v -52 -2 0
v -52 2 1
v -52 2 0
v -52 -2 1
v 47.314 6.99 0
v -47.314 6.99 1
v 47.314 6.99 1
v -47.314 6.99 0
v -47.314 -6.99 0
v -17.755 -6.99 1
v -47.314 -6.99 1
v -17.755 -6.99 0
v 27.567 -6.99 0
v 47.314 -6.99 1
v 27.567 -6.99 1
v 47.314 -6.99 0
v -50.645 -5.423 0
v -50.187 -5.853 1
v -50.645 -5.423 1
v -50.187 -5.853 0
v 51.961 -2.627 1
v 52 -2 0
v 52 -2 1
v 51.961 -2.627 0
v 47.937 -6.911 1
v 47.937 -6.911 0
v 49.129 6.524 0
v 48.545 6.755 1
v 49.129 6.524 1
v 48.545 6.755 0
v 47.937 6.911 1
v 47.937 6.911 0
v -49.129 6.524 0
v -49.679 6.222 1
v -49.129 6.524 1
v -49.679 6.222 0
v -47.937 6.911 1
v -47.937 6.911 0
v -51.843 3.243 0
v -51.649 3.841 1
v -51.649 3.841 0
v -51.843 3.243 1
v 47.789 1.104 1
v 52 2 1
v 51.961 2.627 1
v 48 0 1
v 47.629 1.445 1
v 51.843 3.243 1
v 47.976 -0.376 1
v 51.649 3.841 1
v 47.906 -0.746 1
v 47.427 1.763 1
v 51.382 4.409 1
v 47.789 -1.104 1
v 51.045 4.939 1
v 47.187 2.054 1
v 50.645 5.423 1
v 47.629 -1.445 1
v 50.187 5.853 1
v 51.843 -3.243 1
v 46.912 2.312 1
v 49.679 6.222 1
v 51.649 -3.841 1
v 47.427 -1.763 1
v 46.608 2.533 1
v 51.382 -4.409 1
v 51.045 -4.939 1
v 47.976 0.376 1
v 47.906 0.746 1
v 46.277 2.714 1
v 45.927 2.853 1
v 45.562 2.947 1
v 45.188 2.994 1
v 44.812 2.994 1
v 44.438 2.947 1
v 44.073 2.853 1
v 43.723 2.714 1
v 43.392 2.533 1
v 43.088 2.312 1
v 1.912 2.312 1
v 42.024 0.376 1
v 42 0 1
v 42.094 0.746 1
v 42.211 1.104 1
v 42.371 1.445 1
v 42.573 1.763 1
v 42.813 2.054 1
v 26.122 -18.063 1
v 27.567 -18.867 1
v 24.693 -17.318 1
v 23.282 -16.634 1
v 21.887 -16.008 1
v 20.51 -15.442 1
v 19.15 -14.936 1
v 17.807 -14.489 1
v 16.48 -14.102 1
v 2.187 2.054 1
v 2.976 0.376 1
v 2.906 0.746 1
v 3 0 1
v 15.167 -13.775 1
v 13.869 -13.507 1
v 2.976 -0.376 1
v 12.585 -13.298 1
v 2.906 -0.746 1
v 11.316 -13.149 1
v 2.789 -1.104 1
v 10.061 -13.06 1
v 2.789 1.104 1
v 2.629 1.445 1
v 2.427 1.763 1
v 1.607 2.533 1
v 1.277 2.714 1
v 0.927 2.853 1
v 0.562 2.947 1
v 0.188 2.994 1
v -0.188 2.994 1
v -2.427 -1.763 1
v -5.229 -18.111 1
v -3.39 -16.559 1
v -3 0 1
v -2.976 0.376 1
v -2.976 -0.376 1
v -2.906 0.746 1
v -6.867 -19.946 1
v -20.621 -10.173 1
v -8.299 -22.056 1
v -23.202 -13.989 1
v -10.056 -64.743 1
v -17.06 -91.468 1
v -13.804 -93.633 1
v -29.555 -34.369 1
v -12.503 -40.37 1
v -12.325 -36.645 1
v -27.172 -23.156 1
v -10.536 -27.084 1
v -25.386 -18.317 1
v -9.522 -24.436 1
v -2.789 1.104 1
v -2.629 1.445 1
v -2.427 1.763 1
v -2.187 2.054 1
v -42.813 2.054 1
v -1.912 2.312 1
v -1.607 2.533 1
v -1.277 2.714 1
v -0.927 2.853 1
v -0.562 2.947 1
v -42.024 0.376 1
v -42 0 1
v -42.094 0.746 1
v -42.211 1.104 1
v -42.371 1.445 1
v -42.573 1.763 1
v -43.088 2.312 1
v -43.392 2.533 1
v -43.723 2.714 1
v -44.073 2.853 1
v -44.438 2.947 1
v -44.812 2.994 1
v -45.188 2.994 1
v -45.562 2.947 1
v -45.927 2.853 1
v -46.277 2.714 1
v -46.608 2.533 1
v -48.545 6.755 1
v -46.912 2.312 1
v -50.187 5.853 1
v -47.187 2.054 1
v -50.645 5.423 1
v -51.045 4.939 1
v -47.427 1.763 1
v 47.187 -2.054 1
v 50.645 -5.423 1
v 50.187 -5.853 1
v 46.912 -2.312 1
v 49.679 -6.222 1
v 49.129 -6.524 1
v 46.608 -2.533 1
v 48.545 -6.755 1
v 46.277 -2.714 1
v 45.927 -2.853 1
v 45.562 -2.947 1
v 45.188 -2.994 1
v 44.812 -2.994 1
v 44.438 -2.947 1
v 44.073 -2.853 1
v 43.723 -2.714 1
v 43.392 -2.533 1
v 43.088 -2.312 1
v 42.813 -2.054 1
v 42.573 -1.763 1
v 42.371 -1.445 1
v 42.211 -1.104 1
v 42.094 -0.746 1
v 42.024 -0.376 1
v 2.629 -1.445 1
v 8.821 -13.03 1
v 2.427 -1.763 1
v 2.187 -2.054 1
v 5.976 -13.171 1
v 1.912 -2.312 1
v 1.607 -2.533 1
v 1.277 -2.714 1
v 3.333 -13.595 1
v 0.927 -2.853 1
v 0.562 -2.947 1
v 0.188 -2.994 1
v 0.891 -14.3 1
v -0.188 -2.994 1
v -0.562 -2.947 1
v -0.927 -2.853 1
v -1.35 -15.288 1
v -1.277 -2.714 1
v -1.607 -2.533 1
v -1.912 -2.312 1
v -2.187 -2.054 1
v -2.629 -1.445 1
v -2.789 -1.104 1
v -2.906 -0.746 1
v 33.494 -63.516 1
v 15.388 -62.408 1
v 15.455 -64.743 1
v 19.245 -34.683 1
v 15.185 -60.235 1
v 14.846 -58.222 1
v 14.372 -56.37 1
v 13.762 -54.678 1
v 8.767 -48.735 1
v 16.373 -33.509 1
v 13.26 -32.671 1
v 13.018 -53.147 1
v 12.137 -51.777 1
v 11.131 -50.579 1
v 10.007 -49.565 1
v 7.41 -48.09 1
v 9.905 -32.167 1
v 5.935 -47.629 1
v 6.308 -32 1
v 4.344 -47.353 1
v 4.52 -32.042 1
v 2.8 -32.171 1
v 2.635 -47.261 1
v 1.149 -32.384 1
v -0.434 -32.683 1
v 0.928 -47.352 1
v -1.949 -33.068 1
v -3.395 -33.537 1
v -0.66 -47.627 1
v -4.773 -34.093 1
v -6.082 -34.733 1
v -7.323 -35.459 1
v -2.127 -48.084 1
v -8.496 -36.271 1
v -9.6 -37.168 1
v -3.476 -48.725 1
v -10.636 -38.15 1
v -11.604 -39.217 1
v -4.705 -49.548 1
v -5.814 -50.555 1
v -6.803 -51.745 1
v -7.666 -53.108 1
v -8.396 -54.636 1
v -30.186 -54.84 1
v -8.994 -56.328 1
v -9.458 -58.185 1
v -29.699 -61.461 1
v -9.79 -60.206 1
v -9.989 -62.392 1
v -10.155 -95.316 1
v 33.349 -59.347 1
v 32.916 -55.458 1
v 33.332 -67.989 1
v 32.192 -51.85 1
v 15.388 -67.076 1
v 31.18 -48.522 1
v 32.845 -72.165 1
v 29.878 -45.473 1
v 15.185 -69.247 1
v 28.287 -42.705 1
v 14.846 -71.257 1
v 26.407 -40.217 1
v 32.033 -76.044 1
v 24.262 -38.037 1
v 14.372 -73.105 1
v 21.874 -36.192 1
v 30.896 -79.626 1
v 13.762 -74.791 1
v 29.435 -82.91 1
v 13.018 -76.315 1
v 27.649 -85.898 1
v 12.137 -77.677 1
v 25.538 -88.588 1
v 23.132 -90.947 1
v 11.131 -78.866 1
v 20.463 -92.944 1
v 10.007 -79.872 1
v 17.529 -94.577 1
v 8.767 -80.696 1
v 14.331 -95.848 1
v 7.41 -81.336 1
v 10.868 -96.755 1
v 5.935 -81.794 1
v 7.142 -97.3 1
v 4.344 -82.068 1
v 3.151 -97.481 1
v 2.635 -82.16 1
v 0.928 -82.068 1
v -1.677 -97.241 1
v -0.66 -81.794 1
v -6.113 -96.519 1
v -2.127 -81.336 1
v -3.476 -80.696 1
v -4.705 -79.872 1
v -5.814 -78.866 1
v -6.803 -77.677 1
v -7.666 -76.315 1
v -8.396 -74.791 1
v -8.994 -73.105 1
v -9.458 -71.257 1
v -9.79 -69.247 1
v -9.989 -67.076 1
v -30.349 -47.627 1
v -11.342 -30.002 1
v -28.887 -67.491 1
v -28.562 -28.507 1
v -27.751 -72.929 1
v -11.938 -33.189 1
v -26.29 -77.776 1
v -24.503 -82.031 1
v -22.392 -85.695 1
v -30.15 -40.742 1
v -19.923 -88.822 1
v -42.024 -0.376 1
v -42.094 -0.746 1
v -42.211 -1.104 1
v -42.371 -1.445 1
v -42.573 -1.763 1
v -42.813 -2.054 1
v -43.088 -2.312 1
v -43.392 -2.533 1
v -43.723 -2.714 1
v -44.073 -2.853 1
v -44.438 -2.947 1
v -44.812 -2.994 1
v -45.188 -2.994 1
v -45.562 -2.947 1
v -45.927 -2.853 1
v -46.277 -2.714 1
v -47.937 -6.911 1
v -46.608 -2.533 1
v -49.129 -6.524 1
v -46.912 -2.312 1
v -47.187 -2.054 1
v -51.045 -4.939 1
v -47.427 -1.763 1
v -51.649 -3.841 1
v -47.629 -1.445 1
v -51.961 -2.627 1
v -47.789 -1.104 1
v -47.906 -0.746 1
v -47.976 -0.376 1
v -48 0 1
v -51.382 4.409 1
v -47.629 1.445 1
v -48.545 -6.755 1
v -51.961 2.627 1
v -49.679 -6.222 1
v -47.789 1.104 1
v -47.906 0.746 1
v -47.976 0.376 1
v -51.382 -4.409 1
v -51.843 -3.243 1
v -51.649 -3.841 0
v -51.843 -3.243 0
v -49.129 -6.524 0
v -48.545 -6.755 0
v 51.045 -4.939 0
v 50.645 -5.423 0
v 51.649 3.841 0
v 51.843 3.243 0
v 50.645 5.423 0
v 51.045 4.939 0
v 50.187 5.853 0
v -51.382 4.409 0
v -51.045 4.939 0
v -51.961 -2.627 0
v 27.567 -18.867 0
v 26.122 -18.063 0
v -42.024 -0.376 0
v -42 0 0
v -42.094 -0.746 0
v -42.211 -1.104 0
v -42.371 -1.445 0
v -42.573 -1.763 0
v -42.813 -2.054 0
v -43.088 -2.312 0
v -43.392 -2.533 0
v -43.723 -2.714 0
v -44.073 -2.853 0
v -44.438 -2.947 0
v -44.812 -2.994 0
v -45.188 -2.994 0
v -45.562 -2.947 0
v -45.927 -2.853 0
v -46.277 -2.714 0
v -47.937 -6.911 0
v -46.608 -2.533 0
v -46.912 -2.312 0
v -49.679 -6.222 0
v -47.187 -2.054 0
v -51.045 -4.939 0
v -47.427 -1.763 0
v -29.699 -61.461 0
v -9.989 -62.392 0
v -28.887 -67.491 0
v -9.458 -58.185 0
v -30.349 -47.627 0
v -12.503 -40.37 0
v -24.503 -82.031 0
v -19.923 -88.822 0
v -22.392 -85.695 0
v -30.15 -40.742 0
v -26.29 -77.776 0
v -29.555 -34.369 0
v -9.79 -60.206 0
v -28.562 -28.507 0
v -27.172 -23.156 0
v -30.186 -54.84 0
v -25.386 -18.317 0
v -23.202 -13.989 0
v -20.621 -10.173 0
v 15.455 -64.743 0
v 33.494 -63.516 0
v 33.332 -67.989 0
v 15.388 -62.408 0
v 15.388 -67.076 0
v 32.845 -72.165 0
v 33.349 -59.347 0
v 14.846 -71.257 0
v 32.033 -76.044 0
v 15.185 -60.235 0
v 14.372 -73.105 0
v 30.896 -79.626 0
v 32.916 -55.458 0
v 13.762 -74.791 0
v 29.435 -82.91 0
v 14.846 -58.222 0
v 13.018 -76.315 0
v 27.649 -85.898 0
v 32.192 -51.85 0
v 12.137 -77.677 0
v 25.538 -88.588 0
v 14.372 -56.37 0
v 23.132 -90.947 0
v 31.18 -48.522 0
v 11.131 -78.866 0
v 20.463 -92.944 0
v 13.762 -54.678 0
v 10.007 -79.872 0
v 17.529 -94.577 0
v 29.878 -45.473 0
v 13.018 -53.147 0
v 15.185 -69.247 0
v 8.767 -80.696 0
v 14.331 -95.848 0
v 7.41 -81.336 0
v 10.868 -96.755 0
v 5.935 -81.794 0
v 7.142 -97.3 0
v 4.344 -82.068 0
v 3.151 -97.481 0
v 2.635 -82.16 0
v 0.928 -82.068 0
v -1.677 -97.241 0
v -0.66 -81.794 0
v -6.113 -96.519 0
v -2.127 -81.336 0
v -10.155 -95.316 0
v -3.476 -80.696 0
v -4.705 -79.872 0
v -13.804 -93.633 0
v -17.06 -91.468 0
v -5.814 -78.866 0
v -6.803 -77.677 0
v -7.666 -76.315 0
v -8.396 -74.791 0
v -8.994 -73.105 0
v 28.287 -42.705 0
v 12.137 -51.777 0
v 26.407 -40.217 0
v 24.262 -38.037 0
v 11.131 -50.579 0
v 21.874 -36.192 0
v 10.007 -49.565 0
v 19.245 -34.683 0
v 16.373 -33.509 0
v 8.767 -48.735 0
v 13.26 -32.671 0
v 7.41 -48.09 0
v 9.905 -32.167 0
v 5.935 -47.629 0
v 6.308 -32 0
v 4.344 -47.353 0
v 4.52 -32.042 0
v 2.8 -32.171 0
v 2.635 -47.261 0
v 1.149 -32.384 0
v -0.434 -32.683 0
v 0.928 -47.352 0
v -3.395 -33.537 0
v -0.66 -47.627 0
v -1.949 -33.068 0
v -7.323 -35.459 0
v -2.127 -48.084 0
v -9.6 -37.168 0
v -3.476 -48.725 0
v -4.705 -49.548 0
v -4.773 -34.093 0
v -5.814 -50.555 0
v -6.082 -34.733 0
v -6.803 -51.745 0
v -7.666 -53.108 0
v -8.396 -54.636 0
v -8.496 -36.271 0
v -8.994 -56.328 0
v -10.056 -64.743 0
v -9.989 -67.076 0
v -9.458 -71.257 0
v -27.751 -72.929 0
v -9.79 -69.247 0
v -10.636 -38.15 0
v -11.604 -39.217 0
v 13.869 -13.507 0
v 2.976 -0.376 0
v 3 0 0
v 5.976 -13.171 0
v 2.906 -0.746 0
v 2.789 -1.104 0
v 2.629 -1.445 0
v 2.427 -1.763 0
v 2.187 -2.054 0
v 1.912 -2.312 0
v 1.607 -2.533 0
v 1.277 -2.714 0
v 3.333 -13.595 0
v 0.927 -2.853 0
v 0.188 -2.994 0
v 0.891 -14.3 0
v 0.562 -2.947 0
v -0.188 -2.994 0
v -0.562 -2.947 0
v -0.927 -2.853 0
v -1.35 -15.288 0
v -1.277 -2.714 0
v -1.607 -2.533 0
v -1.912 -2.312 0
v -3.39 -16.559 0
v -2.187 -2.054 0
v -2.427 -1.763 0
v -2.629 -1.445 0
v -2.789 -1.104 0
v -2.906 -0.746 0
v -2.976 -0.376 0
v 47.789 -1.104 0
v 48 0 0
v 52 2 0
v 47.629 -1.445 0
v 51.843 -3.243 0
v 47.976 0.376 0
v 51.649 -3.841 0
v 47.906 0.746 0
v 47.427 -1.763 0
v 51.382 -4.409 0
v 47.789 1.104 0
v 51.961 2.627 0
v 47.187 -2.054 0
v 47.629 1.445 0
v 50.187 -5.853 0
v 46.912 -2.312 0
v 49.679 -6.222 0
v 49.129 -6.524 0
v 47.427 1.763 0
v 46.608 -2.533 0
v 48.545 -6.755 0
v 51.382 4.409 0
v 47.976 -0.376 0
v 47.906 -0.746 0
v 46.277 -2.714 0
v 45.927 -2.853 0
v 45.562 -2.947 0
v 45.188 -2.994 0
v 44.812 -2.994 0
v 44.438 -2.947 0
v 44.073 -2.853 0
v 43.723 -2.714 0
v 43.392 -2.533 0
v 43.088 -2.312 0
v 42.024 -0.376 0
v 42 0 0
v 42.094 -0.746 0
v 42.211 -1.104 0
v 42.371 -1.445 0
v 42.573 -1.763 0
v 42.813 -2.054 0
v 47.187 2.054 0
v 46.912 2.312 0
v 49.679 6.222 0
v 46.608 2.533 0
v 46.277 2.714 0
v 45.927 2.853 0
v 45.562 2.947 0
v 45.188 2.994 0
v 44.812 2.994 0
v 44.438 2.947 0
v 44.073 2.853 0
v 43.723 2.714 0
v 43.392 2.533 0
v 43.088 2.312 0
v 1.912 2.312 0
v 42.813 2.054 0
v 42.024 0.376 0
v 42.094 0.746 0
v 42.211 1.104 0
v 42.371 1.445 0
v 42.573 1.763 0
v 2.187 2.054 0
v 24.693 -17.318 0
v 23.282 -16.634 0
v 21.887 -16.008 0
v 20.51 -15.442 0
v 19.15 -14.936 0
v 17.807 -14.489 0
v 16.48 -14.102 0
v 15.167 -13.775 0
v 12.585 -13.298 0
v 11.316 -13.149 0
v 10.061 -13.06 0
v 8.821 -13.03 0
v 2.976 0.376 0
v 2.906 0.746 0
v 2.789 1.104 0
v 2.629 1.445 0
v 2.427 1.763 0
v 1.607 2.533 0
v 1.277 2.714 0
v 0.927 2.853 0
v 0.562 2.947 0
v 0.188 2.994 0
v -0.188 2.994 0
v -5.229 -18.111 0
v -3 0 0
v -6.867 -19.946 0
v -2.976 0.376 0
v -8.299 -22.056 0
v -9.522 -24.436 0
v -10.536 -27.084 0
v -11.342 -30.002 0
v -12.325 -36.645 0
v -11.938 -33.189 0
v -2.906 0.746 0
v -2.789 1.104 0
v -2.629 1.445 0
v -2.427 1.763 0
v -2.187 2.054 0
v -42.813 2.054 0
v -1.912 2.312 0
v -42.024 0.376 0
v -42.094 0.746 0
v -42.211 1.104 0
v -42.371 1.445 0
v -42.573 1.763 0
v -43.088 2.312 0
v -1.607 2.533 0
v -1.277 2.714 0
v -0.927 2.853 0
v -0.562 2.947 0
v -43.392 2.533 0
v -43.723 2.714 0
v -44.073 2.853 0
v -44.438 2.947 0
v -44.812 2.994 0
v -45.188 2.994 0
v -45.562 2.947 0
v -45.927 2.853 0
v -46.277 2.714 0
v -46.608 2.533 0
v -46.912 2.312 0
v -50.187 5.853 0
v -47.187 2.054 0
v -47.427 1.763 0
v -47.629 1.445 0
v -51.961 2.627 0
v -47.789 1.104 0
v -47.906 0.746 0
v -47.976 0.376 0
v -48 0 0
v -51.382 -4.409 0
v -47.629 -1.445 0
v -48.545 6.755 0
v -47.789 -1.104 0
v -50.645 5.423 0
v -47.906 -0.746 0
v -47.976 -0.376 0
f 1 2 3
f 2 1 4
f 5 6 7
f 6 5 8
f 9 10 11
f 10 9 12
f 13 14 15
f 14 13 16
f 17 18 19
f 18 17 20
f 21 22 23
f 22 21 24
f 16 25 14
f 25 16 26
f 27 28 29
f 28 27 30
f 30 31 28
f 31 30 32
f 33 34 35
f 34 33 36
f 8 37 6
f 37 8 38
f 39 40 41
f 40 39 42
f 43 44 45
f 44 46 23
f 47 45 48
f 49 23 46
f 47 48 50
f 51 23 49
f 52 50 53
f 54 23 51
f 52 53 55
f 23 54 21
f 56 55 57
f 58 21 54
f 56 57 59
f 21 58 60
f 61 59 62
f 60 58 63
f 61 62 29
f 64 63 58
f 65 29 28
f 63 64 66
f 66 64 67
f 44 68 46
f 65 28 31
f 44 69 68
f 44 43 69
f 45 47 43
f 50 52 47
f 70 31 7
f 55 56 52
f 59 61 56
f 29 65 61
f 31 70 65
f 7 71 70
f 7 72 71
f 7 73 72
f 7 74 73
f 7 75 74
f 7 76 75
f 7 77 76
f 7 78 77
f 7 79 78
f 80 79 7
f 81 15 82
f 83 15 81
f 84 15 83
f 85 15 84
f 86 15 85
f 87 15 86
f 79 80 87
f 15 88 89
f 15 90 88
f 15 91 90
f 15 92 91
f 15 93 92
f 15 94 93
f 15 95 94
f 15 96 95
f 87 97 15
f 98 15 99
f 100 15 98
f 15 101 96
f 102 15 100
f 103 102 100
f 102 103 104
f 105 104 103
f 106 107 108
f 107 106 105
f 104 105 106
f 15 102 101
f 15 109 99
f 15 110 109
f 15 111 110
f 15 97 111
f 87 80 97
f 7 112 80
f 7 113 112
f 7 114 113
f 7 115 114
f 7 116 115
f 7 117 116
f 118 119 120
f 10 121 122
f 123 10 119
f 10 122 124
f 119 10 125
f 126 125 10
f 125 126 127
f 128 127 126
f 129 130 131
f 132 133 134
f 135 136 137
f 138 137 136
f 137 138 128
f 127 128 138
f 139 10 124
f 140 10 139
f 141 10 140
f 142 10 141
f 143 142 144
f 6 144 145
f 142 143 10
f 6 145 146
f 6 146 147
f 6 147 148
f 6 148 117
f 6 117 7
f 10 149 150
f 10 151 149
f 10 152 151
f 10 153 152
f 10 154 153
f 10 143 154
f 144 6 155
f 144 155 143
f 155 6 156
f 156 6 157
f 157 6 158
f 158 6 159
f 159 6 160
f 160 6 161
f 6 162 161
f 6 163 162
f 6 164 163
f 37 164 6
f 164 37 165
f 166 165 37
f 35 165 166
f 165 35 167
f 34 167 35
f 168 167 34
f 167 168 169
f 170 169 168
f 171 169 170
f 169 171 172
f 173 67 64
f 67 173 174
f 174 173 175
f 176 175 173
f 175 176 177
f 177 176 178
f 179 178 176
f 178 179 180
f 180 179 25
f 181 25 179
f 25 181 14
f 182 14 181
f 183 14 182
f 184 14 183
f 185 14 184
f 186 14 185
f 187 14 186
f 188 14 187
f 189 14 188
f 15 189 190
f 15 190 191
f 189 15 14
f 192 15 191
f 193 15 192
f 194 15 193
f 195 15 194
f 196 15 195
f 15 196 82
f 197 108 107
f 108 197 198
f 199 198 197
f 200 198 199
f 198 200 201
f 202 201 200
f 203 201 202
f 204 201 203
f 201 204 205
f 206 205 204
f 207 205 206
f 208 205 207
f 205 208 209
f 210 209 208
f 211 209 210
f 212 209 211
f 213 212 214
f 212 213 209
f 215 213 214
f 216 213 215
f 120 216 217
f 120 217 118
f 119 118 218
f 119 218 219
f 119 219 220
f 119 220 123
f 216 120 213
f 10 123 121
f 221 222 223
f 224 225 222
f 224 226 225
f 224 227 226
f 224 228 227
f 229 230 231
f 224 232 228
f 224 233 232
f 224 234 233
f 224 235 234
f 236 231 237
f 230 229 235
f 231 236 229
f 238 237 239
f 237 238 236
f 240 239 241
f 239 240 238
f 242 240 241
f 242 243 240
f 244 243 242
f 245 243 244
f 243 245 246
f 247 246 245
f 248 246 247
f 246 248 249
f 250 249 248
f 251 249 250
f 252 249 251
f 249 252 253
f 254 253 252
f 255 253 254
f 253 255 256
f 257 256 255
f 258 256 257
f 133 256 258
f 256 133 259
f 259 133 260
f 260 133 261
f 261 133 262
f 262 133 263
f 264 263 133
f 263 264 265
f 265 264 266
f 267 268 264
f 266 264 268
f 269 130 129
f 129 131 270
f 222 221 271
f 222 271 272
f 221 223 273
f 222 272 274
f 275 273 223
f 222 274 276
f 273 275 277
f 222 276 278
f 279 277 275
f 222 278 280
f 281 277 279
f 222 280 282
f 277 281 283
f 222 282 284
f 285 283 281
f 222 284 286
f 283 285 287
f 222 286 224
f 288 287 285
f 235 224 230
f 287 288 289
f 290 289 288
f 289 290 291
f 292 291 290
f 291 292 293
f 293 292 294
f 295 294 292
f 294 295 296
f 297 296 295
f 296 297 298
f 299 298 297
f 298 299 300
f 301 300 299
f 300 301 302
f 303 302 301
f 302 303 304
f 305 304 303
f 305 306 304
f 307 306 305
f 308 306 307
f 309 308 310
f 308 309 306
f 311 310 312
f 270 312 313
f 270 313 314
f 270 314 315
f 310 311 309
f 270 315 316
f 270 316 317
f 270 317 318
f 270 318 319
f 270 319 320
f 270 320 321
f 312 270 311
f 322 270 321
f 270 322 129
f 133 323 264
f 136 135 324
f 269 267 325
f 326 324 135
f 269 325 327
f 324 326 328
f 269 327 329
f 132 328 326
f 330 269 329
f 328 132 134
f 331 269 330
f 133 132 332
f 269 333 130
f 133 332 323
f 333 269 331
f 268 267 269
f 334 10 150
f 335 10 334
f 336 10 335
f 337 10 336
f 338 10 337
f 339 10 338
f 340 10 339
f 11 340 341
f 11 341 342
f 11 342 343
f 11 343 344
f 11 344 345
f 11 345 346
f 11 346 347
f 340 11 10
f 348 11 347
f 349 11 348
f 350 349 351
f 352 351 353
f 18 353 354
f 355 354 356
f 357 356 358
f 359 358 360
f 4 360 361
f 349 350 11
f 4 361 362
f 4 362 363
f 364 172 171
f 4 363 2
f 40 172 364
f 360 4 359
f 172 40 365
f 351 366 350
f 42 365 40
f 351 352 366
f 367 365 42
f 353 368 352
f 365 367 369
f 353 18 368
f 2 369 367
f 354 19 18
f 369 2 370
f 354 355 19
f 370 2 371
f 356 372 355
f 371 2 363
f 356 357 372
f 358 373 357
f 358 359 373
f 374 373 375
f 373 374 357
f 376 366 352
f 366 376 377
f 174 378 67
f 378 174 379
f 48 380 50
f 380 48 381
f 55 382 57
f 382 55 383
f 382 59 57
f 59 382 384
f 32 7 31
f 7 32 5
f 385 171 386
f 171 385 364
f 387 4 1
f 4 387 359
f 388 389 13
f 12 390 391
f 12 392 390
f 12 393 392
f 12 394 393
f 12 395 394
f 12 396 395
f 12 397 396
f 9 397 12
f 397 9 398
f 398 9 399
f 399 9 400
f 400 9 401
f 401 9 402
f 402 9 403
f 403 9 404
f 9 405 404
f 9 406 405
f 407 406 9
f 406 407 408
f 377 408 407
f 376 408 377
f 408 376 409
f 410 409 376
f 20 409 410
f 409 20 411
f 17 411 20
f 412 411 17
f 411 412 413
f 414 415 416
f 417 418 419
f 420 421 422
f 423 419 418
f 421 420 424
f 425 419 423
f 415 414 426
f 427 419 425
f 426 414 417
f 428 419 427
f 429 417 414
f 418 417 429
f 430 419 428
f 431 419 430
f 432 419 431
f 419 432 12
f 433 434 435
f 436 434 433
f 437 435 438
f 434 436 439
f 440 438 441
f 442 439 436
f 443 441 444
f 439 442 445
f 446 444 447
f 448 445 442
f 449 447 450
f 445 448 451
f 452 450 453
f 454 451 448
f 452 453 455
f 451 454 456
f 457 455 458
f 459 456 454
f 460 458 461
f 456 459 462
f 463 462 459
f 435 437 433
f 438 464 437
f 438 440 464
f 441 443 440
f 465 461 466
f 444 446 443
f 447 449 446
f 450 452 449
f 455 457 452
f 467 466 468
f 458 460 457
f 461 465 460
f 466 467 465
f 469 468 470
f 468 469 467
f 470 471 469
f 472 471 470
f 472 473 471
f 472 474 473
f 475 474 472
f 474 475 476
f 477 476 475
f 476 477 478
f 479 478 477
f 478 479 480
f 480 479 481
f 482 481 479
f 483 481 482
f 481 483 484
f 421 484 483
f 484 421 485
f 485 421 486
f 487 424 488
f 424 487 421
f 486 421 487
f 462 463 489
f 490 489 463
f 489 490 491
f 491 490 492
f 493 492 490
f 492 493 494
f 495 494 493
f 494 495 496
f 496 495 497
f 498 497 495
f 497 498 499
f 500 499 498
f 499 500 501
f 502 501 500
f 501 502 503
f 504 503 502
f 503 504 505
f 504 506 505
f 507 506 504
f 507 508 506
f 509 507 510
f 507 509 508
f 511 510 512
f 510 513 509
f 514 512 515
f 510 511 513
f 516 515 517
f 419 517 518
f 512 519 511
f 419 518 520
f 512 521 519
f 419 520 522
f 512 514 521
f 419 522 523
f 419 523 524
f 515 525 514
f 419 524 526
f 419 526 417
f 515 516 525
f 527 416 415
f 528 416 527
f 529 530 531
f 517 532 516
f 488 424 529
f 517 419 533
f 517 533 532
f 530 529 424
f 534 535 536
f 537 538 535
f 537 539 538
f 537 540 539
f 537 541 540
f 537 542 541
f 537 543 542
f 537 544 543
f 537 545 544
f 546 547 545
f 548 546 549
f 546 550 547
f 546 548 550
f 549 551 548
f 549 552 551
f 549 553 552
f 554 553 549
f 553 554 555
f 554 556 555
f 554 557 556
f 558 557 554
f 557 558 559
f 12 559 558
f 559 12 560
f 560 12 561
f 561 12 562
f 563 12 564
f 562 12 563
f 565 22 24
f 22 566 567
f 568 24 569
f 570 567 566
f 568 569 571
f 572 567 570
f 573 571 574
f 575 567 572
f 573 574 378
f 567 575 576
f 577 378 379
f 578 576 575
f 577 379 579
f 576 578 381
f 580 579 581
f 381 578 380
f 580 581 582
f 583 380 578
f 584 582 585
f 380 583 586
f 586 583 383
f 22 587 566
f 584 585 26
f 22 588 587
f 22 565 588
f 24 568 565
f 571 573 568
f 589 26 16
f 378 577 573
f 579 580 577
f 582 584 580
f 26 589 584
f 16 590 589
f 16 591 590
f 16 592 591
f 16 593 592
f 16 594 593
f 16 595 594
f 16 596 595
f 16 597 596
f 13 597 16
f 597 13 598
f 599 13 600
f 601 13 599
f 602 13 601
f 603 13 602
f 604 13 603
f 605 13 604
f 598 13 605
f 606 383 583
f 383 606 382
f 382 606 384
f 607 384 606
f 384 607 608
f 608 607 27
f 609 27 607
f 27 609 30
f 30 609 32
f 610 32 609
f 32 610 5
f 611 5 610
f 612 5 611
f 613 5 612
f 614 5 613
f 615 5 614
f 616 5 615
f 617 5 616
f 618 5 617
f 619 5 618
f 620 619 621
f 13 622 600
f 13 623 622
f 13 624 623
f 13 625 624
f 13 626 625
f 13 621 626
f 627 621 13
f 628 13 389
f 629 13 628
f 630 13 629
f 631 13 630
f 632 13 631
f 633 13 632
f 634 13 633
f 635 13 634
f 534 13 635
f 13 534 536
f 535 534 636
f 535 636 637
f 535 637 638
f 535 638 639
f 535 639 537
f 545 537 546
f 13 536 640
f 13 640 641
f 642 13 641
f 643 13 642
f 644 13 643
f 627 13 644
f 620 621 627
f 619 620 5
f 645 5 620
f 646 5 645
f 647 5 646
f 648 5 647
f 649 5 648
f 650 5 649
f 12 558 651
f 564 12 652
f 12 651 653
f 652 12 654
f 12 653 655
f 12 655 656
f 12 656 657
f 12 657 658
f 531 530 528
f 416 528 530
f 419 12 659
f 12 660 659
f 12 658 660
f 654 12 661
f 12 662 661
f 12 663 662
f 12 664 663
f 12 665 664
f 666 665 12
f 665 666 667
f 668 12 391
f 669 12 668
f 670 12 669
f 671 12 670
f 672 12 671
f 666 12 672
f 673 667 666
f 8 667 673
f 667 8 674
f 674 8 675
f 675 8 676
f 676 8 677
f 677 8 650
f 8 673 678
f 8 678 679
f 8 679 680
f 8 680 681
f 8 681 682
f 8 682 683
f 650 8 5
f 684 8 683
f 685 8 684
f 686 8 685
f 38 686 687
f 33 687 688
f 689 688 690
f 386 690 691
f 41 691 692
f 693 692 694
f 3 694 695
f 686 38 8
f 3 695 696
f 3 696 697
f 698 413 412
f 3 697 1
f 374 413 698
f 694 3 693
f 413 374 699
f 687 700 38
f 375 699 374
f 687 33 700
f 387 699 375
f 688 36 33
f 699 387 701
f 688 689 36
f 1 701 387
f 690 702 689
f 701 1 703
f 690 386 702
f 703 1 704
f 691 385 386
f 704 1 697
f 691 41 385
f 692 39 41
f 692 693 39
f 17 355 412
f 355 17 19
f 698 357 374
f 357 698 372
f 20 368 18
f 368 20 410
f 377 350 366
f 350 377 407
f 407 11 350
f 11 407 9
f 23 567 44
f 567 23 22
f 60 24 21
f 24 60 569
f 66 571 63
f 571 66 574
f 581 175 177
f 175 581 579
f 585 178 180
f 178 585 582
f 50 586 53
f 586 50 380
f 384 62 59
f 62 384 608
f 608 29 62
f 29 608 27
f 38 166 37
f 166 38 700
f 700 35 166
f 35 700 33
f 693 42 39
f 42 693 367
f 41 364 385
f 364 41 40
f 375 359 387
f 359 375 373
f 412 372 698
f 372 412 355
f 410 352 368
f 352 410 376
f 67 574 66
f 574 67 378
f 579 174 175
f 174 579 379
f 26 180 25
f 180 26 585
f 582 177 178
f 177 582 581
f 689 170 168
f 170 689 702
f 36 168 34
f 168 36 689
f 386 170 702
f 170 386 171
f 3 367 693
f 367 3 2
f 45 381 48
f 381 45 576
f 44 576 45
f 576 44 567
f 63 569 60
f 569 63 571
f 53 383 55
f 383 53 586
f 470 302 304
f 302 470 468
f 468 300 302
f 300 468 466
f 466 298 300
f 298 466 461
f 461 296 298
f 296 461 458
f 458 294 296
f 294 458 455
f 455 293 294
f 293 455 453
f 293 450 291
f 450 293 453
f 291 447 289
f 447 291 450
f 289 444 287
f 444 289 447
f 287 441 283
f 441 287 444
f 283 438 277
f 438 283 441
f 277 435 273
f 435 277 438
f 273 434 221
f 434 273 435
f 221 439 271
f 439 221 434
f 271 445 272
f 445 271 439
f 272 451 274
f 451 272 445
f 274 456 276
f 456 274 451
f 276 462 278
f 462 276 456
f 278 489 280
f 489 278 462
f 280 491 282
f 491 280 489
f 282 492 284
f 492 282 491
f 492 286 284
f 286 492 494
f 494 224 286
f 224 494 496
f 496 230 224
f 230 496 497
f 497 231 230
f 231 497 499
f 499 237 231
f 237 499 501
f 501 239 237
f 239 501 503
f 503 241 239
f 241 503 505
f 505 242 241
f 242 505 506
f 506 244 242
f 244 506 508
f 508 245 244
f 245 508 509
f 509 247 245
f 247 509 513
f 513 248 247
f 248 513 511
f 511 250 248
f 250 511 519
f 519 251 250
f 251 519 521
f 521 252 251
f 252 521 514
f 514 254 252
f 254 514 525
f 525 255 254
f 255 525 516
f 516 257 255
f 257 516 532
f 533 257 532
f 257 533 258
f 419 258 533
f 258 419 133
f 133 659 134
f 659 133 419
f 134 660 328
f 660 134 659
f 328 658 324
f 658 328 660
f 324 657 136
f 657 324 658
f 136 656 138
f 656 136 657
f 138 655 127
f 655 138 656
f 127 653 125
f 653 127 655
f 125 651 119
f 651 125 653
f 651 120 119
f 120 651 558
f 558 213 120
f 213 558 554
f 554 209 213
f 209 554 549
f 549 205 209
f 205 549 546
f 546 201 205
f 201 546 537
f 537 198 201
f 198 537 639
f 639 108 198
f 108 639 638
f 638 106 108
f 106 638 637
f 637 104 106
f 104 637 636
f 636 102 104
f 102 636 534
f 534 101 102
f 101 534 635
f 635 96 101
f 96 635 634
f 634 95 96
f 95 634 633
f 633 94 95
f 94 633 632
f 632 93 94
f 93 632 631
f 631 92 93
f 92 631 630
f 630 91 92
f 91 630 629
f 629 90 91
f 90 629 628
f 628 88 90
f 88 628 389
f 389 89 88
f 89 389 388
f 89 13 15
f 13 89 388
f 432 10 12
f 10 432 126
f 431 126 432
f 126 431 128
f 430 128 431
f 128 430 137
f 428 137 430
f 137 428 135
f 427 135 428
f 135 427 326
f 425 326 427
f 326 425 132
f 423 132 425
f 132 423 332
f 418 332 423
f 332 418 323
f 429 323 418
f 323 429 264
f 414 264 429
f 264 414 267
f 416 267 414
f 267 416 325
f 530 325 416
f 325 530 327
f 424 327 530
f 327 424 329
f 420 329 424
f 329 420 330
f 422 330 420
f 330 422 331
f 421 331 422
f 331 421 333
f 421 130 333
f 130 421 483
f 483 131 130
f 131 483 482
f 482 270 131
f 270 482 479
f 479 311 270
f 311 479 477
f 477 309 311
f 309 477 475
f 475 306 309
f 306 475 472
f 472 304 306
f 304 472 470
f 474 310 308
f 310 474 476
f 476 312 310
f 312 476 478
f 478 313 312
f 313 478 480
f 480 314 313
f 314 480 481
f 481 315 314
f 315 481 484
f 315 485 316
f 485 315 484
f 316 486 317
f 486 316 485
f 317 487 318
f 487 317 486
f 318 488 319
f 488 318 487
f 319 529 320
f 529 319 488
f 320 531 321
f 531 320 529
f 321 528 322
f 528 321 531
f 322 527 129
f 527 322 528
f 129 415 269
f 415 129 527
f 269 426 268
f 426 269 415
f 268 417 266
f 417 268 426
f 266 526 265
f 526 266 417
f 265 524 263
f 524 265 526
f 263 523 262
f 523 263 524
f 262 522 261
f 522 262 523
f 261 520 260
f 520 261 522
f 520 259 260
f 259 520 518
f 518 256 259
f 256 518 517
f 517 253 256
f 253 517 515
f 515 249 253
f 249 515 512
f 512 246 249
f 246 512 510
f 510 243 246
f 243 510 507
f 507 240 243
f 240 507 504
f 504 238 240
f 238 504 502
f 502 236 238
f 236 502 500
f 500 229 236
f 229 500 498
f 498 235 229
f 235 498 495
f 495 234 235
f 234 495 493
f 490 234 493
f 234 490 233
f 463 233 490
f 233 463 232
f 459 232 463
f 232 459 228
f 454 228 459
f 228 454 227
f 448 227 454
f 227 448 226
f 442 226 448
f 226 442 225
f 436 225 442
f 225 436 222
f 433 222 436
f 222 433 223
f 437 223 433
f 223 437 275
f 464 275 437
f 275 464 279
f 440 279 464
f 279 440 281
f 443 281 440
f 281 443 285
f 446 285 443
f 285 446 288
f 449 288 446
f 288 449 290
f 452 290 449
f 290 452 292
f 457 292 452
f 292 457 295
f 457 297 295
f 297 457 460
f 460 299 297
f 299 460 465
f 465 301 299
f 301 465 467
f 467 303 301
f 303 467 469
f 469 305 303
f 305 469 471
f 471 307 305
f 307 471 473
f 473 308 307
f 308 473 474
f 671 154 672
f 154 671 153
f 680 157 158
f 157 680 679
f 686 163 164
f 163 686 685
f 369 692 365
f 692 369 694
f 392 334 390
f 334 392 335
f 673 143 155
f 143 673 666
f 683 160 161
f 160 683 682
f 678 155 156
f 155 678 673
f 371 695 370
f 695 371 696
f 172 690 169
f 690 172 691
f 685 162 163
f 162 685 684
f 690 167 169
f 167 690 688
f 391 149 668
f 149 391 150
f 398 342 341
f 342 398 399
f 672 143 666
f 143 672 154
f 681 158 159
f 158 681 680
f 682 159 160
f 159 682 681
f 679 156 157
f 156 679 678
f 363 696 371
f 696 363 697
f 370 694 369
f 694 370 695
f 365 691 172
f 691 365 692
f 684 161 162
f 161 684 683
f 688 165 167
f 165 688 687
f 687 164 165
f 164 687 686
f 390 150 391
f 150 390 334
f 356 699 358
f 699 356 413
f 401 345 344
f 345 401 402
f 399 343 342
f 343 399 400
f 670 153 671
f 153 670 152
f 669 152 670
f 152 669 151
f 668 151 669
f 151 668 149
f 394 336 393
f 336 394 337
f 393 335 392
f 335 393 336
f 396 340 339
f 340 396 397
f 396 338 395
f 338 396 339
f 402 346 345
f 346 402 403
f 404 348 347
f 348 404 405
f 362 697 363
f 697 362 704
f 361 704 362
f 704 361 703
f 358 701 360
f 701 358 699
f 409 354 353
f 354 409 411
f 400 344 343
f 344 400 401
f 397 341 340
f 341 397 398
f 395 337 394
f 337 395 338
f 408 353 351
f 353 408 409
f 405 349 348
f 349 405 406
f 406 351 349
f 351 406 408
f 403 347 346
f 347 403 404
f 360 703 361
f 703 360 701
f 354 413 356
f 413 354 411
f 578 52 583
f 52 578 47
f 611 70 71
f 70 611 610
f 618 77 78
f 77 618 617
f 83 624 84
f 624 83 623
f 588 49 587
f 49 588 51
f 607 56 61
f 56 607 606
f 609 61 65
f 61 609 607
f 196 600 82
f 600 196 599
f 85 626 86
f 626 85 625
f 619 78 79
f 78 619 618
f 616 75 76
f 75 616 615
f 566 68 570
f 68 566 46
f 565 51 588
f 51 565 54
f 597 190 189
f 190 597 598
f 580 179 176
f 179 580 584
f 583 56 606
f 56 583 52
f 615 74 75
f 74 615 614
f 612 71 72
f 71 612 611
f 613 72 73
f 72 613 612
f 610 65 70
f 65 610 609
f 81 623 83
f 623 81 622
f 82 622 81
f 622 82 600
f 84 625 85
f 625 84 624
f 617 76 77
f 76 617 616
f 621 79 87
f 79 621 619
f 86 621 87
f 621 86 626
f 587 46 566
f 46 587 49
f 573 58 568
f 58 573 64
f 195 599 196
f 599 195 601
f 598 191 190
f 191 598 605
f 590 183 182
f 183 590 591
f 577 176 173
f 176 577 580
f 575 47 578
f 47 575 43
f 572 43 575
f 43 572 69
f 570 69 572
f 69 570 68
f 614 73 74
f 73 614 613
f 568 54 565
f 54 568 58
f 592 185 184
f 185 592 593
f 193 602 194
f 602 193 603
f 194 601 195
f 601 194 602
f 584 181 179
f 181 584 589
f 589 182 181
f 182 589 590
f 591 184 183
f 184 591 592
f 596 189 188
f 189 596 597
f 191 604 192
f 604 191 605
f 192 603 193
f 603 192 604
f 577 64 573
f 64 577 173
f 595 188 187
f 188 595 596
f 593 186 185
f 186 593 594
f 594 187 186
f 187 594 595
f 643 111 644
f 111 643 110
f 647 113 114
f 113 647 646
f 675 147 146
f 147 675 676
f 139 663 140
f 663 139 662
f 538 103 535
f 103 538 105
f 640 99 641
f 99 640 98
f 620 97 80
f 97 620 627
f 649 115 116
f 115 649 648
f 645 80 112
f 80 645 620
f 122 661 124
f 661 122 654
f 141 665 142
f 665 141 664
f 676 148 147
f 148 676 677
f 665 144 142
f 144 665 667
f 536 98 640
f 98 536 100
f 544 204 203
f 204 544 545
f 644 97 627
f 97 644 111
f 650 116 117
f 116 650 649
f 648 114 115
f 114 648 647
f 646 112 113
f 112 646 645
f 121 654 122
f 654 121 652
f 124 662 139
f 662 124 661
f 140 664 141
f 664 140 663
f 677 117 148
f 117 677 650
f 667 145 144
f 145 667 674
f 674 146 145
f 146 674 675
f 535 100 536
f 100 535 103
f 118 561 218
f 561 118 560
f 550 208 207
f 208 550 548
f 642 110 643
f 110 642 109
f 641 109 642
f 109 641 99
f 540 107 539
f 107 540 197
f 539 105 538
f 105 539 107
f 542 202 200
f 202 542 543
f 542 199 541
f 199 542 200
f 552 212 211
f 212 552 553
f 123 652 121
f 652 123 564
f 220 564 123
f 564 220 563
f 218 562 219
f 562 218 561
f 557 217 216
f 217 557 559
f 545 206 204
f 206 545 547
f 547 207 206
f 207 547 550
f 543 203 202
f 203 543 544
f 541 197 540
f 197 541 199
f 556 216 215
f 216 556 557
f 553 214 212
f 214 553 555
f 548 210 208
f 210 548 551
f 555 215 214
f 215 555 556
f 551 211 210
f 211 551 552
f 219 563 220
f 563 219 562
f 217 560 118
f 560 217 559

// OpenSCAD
$fn = 50;


difference() {
	union() {
		translate(v = [0, 0, 0]) {
			rotate(a = [0, 0, 0]) {
				hull() {
					translate(v = [-47.0000000000, 2.0000000000, 0]) {
						rotate(a = [0, 0, 0]) {
							translate(v = [0, 0, 0]) {
								rotate(a = [0, 0, 0]) {
									cylinder(h = 1, r = 5);
								}
							}
						}
					}
					translate(v = [47.0000000000, 2.0000000000, 0]) {
						rotate(a = [0, 0, 0]) {
							translate(v = [0, 0, 0]) {
								rotate(a = [0, 0, 0]) {
									cylinder(h = 1, r = 5);
								}
							}
						}
					}
					translate(v = [-47.0000000000, -2.0000000000, 0]) {
						rotate(a = [0, 0, 0]) {
							translate(v = [0, 0, 0]) {
								rotate(a = [0, 0, 0]) {
									cylinder(h = 1, r = 5);
								}
							}
						}
					}
					translate(v = [47.0000000000, -2.0000000000, 0]) {
						rotate(a = [0, 0, 0]) {
							translate(v = [0, 0, 0]) {
								rotate(a = [0, 0, 0]) {
									cylinder(h = 1, r = 5);
								}
							}
						}
					}
				}
			}
		}
		translate(v = [0, 0, 0]) {
			rotate(a = [0, 0, 0]) {
				linear_extrude(height = 1) {
					text(font = "DejaVu Sans Mono:style=Bold", halign = "center", size = 95, text = "6", valign = "top");
				}
			}
		}
	}
	union() {
		translate(v = [-45.0000000000, 0.0000000000, -125.0000000000]) {
			rotate(a = [0, 0, 0]) {
				cylinder(h = 250, r = 3.0000000000);
			}
		}
		translate(v = [45.0000000000, 0.0000000000, -125.0000000000]) {
			rotate(a = [0, 0, 0]) {
				cylinder(h = 250, r = 3.0000000000);
			}
		}
		translate(v = [45.0000000000, 0.0000000000, -125.0000000000]) {
			rotate(a = [0, 0, 0]) {
				cylinder(h = 250, r = 3.0000000000);
			}
		}
		translate(v = [0, 0, -125.0000000000]) {
			rotate(a = [0, 0, 0]) {
				cylinder(h = 250, r = 3.0000000000);
			}
		}
	}
}
